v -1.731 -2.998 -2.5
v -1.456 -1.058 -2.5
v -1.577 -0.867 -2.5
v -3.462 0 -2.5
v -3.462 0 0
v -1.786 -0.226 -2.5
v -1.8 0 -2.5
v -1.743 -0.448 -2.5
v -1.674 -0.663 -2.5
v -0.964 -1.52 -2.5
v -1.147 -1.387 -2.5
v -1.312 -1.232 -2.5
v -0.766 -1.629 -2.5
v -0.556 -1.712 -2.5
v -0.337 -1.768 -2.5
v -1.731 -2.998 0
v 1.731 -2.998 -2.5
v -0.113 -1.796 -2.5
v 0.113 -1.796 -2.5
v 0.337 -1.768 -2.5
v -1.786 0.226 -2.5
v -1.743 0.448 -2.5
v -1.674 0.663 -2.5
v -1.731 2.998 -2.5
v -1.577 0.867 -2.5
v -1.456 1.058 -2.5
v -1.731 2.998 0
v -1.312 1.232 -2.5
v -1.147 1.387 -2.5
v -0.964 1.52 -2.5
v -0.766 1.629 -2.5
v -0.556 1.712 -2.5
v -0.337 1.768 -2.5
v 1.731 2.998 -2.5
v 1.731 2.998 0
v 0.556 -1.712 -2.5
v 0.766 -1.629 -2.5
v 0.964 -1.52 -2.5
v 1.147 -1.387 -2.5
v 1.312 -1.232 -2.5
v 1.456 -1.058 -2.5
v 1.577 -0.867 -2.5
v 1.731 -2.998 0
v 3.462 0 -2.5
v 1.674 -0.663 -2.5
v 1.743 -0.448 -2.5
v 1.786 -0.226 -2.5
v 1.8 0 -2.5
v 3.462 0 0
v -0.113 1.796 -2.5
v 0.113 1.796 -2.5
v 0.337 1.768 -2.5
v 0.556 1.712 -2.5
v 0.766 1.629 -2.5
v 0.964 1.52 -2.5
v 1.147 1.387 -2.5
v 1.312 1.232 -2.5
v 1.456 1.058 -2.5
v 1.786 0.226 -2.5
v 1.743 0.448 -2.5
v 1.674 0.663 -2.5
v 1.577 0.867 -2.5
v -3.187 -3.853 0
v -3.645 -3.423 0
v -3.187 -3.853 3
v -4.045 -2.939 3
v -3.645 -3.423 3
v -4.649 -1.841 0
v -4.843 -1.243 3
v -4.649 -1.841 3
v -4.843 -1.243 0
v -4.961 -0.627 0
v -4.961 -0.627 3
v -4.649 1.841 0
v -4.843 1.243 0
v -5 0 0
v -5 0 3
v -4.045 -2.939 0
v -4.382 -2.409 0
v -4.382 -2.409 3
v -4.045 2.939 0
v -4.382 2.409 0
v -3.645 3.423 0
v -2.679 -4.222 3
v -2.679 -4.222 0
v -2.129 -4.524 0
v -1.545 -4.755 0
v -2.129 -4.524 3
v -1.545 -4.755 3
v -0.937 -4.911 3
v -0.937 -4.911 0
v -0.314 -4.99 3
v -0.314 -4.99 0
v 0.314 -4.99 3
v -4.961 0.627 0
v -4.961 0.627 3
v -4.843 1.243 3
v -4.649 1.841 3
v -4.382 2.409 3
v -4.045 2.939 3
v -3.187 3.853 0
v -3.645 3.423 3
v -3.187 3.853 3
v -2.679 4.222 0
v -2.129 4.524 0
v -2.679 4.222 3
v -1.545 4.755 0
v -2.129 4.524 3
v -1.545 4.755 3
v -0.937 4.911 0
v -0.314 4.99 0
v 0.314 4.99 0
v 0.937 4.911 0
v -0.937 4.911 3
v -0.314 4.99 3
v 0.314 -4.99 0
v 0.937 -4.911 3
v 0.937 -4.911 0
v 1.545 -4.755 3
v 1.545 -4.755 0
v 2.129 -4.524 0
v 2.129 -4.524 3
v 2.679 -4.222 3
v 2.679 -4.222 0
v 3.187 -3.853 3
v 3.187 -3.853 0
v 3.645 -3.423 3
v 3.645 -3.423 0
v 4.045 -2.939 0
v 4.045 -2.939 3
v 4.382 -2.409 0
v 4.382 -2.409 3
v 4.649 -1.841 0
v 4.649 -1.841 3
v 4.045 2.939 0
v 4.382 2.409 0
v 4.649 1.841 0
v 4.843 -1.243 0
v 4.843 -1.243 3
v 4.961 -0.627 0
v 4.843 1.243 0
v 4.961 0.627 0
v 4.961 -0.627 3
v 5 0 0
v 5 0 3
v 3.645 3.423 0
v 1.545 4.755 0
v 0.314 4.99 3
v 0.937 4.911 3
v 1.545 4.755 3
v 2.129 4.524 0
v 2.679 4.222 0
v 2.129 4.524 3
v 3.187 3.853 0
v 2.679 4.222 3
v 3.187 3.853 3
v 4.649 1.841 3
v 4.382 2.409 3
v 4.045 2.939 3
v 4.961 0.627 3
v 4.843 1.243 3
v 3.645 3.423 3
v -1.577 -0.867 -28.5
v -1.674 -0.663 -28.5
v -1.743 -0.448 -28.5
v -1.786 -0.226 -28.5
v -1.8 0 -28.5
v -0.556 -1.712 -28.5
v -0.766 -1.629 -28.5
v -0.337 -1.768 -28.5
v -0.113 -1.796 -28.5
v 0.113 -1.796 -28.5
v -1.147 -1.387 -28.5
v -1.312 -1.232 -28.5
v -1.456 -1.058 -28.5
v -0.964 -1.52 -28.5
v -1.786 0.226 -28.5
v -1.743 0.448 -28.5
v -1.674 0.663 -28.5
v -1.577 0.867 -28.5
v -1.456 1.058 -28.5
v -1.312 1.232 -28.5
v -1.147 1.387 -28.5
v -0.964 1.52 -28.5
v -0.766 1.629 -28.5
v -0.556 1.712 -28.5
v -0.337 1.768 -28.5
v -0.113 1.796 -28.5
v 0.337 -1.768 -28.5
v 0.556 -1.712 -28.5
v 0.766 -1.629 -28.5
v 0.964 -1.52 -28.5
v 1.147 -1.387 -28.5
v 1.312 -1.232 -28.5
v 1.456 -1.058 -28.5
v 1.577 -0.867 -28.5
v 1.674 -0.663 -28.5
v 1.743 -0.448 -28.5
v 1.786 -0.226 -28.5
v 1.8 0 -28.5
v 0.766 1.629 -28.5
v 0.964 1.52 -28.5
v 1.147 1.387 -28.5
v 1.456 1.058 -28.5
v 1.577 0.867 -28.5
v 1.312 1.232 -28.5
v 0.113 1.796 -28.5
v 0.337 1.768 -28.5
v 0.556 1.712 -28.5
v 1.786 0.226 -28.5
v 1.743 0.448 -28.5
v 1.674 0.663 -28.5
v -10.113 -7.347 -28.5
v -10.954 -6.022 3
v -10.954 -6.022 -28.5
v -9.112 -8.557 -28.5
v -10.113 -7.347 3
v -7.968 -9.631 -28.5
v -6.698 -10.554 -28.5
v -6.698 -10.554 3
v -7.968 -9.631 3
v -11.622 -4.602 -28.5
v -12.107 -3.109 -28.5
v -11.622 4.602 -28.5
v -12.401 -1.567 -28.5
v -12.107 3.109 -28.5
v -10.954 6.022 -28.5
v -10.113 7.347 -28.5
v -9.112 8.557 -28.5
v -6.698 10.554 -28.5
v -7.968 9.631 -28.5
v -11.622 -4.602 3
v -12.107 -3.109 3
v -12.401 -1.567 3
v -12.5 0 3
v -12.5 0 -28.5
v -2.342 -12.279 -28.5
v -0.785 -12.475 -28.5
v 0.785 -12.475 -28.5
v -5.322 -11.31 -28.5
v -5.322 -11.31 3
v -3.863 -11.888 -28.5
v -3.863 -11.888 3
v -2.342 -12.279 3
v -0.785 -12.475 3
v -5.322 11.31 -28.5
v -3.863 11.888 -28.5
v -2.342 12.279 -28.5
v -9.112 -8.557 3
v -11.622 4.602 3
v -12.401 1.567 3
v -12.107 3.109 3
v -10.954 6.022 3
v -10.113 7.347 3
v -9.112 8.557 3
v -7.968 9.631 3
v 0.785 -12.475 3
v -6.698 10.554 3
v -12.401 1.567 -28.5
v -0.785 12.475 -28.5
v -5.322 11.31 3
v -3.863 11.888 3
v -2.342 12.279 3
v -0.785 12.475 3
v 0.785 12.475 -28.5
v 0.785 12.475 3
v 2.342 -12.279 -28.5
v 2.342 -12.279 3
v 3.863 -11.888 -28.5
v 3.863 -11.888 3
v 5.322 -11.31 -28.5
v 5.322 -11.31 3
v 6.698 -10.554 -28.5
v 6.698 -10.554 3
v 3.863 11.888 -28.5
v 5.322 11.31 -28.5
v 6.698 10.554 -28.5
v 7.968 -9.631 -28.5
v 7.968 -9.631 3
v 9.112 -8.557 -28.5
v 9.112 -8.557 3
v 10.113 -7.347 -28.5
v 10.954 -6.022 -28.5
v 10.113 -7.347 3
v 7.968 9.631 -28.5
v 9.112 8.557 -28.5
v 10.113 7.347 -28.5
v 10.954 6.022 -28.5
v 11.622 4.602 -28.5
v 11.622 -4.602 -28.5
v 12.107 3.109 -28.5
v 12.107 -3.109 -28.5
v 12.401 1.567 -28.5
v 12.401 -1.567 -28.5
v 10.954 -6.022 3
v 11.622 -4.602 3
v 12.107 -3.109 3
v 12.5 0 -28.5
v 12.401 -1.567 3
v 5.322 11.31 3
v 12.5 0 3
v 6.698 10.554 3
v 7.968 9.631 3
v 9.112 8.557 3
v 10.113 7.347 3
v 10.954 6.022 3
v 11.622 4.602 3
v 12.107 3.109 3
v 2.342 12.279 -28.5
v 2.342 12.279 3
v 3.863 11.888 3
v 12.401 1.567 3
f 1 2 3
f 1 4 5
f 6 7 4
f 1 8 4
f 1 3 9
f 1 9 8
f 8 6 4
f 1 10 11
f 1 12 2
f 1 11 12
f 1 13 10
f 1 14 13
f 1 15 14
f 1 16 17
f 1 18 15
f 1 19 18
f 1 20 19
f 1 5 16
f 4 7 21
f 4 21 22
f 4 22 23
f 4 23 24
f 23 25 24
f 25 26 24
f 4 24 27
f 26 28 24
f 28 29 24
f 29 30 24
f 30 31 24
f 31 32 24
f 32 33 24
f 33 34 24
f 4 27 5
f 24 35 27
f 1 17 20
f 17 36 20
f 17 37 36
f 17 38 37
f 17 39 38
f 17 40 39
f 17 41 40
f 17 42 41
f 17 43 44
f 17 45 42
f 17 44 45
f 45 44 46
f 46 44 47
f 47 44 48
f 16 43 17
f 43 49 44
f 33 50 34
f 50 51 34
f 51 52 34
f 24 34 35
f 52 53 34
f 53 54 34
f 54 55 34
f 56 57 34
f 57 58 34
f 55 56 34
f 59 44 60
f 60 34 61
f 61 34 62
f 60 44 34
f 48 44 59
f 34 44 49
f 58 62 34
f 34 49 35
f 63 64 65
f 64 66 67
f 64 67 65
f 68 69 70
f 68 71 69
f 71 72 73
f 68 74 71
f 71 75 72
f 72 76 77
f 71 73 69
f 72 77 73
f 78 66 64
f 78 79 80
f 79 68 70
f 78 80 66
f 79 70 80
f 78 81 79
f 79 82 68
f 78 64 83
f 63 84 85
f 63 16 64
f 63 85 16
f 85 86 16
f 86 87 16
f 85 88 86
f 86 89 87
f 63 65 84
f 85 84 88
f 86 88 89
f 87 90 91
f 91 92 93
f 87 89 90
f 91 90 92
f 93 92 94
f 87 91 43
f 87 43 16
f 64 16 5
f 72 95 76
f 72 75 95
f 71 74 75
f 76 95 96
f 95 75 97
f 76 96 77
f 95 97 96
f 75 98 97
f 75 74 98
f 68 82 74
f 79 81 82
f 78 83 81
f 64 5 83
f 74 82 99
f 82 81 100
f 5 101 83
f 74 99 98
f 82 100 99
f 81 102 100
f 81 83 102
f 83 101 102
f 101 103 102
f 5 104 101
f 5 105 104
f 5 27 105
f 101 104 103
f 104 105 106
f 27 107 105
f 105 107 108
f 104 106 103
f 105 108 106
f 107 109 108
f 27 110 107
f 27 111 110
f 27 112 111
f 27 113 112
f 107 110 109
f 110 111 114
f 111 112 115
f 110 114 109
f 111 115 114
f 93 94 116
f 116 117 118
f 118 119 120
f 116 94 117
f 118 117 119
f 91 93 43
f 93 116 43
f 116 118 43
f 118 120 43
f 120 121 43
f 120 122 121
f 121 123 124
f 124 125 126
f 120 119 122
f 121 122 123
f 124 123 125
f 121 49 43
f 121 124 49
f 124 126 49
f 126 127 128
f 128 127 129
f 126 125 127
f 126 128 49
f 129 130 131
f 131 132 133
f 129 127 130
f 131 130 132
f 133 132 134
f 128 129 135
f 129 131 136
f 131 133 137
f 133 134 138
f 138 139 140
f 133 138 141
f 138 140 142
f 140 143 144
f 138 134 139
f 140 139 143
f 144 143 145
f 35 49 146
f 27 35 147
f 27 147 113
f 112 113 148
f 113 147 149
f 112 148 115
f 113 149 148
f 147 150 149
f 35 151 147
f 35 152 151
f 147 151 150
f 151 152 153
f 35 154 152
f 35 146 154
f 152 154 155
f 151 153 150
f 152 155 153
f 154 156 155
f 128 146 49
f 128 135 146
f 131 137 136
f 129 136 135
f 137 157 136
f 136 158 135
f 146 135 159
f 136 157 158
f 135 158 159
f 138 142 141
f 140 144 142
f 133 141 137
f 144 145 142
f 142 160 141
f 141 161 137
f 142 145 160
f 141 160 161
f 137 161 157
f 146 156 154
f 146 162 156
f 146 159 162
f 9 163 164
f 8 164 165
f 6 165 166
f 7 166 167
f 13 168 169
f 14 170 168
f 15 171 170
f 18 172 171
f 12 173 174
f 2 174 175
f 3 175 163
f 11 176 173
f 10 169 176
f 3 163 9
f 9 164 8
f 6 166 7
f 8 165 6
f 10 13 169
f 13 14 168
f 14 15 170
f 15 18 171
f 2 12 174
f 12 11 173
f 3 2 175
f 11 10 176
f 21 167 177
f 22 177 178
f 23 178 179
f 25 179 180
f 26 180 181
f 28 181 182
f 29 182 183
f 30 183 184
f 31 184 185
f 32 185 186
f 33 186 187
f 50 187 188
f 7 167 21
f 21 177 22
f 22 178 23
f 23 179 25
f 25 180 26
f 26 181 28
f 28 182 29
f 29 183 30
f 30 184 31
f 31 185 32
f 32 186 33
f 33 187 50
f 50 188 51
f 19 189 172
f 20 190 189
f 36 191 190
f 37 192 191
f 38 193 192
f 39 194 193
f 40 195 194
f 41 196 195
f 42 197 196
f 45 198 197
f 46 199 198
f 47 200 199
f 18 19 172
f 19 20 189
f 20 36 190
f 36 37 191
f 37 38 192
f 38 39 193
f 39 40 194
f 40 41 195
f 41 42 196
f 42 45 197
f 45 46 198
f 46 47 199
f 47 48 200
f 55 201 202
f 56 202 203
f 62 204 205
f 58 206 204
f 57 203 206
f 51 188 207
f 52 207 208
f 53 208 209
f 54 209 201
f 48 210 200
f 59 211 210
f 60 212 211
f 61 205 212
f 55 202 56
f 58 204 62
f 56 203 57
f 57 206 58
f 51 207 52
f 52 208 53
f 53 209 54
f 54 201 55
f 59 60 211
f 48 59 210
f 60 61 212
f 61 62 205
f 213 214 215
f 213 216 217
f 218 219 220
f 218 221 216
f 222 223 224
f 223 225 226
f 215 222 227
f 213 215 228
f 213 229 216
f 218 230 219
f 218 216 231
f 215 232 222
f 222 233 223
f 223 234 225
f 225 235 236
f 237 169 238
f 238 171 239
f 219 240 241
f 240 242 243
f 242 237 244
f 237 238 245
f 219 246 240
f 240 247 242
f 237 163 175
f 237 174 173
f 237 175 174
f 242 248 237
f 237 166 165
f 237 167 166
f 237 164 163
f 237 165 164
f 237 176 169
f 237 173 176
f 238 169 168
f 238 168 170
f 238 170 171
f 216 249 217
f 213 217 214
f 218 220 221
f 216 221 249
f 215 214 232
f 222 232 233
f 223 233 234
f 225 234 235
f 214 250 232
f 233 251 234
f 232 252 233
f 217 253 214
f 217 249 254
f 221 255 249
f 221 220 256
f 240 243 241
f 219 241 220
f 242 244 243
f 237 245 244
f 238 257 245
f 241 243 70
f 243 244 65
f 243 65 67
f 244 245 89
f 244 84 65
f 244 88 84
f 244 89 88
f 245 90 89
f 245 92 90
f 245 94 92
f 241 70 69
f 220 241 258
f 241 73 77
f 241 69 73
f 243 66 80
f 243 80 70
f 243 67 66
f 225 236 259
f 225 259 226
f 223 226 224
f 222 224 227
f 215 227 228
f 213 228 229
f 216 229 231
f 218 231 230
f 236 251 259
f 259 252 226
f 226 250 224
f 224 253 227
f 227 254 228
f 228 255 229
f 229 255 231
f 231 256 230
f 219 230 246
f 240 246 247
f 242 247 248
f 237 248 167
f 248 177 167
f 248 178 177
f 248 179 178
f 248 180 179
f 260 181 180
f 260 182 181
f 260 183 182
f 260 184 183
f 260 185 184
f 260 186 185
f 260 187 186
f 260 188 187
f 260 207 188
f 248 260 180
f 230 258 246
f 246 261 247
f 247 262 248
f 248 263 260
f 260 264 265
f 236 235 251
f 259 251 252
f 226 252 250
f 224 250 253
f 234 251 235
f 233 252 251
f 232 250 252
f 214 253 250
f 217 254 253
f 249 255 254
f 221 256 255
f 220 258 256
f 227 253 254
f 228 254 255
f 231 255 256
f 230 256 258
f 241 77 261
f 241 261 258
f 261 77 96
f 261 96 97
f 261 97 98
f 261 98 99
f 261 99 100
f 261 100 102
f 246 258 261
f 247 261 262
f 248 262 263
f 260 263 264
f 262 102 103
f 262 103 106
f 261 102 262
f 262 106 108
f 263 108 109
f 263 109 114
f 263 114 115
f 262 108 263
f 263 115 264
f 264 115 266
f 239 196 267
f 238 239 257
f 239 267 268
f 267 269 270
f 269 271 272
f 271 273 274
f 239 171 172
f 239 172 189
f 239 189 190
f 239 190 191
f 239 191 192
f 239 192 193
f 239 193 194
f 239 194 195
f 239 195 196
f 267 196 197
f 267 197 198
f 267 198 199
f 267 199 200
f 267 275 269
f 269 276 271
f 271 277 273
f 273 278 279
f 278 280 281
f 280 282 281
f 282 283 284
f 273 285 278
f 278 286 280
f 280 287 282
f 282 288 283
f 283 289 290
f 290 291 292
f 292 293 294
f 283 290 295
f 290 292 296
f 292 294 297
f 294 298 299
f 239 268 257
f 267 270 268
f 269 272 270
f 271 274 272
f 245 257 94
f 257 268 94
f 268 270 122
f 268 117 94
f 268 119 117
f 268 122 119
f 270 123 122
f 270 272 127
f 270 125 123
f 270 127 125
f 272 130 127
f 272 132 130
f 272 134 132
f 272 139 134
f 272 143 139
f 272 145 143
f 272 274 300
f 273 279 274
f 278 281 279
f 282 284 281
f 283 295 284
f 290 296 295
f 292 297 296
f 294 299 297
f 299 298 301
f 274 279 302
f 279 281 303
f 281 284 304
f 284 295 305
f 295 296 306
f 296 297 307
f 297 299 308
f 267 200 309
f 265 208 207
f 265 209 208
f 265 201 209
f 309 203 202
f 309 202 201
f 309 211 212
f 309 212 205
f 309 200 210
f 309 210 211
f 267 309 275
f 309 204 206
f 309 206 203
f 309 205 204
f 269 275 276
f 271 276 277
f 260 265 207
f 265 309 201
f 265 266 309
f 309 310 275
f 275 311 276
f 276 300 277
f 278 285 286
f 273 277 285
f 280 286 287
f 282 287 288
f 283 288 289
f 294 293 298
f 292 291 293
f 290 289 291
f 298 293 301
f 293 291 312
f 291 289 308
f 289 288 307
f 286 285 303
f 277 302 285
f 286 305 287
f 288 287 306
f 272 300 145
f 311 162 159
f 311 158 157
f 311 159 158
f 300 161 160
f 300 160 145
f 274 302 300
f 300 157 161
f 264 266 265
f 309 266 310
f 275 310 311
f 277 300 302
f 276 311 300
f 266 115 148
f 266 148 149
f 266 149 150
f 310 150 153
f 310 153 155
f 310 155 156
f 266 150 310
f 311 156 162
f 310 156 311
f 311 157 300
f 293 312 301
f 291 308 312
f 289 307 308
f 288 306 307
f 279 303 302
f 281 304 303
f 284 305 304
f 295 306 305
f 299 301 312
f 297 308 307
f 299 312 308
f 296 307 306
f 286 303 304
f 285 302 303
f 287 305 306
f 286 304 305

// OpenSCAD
$fn = 50;

difference() {
	union() {
		translate(v = [0, 0, -28.5]) {
			cylinder(h = 31.5, r = 12.5);
		}
	}
	union() {
		translate(v = [0, 0, 0]) {
			rotate(a = [0, 0, 0]) {
				difference() {
					union() {
						translate(v = [0, 0, -2.5]) {
							linear_extrude(height = 2.5) {
								polygon(points = [[3.4619999999999997, 0.0], [1.7310000000000003, 2.9981799479017264], [-1.7309999999999992, 2.9981799479017264], [-3.4619999999999997, 4.2397272186481365e-16], [-1.7310000000000014, -2.998179947901726], [1.7309999999999977, -2.9981799479017277]]);
							}
						}
					}
					union();
				}
			}
		}
		#cylinder(h = 3, r = 5.0);
		#translate(v = [0, 0, -100.0]) {
			cylinder(h = 200, r = 1.8);
		}
	}
}
